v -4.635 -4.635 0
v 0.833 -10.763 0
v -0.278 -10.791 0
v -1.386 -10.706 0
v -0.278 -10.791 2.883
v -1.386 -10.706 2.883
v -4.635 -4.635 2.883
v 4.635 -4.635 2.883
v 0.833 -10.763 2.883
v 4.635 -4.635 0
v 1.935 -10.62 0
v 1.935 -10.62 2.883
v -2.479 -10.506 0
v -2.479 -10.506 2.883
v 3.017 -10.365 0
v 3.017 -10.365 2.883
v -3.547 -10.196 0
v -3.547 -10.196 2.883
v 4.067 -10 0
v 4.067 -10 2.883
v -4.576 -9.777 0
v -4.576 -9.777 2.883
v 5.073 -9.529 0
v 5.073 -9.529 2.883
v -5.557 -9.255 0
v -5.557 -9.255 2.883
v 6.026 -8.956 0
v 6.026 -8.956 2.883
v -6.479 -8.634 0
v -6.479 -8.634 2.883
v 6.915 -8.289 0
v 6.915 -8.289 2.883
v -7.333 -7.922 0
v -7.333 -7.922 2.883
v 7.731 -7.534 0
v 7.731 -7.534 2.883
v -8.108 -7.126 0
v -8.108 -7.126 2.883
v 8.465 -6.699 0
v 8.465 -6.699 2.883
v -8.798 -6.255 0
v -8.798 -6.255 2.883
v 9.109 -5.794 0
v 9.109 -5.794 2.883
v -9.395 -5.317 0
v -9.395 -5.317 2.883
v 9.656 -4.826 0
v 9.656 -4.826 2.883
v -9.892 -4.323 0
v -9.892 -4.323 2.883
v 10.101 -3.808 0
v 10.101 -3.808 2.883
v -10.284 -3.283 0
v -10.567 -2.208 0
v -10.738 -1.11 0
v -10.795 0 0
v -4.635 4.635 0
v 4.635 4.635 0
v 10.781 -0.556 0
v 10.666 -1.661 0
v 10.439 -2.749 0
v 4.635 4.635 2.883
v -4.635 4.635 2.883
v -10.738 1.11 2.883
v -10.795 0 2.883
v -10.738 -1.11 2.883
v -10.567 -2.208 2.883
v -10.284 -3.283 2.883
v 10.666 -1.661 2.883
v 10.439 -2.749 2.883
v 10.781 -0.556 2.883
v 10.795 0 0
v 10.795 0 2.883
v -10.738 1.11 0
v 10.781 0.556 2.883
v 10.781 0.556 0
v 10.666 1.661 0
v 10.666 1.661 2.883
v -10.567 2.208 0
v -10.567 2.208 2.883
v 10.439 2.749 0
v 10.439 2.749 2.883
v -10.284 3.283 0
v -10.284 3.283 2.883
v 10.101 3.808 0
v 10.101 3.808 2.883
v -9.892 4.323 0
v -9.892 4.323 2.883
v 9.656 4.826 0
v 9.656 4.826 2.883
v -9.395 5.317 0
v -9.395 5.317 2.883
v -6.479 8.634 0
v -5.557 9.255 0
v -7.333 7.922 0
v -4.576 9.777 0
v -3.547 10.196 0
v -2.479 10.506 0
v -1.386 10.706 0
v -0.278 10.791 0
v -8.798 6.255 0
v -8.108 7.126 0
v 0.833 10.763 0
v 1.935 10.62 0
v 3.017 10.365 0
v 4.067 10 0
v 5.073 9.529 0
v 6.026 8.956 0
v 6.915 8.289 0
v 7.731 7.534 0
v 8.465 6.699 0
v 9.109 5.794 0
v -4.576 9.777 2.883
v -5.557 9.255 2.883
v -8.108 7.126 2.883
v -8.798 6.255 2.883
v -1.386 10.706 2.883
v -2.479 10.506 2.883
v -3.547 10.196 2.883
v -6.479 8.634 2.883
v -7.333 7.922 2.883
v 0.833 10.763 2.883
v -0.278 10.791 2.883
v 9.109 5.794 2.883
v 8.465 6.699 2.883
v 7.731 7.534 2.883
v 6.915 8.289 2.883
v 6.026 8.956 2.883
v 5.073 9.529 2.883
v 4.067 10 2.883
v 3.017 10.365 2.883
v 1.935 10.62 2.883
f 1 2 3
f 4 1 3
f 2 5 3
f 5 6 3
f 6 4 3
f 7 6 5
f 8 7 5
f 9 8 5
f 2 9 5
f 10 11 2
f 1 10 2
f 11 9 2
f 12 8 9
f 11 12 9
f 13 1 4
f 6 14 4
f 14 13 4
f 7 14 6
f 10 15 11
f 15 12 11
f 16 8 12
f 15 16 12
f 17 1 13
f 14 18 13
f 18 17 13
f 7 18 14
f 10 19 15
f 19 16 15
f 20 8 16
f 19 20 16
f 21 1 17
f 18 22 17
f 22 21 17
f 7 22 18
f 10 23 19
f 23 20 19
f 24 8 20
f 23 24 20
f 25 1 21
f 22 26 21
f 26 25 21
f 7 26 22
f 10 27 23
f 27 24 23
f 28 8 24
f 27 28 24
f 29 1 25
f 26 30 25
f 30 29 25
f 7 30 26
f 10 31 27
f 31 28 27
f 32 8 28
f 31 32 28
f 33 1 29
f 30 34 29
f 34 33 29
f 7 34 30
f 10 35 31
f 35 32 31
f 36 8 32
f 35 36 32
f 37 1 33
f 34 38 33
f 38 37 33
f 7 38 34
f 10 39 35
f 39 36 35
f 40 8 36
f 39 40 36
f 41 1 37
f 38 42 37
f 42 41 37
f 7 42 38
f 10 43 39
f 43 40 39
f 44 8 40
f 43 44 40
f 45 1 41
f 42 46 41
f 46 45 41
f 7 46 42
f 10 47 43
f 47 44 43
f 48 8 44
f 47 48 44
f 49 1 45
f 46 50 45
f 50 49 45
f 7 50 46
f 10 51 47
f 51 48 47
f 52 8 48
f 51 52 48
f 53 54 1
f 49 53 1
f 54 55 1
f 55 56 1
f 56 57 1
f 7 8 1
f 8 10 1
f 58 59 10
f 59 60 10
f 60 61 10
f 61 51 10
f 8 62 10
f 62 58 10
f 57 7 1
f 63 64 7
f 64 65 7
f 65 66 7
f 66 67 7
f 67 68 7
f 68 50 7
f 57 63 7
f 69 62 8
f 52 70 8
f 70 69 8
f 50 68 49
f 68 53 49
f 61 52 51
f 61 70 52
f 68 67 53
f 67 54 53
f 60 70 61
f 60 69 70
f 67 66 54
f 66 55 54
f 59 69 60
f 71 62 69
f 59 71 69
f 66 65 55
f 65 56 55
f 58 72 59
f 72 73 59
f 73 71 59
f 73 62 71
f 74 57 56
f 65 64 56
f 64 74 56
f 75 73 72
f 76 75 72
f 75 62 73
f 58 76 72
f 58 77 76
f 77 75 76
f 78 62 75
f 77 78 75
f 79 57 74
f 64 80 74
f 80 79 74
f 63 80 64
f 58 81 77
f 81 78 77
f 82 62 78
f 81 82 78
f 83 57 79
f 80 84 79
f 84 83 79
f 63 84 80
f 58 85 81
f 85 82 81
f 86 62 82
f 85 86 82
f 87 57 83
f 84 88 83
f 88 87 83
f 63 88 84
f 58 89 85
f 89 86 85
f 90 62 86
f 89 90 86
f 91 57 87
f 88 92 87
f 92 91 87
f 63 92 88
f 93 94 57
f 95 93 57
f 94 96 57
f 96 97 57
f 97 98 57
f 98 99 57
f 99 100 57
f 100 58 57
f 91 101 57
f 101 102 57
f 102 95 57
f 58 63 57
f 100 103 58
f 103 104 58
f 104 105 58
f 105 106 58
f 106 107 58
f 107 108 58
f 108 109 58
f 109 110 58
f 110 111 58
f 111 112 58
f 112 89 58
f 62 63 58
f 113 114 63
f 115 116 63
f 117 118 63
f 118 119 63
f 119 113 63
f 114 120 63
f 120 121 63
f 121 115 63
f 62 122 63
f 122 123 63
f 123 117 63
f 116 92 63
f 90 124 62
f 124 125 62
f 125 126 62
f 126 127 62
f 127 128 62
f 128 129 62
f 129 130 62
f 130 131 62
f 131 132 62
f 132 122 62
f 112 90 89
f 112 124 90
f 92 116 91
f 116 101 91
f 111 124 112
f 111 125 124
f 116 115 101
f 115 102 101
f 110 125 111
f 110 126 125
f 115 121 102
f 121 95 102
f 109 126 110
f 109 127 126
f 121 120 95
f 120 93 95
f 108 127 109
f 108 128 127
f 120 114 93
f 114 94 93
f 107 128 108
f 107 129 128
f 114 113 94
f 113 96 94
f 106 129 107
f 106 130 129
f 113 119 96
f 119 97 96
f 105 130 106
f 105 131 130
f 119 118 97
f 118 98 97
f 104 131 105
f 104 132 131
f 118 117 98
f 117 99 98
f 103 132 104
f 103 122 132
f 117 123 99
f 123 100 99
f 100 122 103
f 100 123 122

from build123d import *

# Parameters (mm, degrees)
SKETCH1_R           = 10.795
SKETCH1_W           = 9.271
SKETCH1_H           = 9.271
BOSS_EXTRUDE1_DEPTH = 2.8829


with BuildPart() as part:
    # Sketch1 → Boss-Extrude1 (new body)
    with BuildSketch(Plane.XY):
        with Locations(Location((0, 0, 0), (0, 0, 180))):
            Circle(SKETCH1_R)
        Rectangle(SKETCH1_W, SKETCH1_H, mode=Mode.SUBTRACT)
    extrude(amount=BOSS_EXTRUDE1_DEPTH)


solid = part.part
